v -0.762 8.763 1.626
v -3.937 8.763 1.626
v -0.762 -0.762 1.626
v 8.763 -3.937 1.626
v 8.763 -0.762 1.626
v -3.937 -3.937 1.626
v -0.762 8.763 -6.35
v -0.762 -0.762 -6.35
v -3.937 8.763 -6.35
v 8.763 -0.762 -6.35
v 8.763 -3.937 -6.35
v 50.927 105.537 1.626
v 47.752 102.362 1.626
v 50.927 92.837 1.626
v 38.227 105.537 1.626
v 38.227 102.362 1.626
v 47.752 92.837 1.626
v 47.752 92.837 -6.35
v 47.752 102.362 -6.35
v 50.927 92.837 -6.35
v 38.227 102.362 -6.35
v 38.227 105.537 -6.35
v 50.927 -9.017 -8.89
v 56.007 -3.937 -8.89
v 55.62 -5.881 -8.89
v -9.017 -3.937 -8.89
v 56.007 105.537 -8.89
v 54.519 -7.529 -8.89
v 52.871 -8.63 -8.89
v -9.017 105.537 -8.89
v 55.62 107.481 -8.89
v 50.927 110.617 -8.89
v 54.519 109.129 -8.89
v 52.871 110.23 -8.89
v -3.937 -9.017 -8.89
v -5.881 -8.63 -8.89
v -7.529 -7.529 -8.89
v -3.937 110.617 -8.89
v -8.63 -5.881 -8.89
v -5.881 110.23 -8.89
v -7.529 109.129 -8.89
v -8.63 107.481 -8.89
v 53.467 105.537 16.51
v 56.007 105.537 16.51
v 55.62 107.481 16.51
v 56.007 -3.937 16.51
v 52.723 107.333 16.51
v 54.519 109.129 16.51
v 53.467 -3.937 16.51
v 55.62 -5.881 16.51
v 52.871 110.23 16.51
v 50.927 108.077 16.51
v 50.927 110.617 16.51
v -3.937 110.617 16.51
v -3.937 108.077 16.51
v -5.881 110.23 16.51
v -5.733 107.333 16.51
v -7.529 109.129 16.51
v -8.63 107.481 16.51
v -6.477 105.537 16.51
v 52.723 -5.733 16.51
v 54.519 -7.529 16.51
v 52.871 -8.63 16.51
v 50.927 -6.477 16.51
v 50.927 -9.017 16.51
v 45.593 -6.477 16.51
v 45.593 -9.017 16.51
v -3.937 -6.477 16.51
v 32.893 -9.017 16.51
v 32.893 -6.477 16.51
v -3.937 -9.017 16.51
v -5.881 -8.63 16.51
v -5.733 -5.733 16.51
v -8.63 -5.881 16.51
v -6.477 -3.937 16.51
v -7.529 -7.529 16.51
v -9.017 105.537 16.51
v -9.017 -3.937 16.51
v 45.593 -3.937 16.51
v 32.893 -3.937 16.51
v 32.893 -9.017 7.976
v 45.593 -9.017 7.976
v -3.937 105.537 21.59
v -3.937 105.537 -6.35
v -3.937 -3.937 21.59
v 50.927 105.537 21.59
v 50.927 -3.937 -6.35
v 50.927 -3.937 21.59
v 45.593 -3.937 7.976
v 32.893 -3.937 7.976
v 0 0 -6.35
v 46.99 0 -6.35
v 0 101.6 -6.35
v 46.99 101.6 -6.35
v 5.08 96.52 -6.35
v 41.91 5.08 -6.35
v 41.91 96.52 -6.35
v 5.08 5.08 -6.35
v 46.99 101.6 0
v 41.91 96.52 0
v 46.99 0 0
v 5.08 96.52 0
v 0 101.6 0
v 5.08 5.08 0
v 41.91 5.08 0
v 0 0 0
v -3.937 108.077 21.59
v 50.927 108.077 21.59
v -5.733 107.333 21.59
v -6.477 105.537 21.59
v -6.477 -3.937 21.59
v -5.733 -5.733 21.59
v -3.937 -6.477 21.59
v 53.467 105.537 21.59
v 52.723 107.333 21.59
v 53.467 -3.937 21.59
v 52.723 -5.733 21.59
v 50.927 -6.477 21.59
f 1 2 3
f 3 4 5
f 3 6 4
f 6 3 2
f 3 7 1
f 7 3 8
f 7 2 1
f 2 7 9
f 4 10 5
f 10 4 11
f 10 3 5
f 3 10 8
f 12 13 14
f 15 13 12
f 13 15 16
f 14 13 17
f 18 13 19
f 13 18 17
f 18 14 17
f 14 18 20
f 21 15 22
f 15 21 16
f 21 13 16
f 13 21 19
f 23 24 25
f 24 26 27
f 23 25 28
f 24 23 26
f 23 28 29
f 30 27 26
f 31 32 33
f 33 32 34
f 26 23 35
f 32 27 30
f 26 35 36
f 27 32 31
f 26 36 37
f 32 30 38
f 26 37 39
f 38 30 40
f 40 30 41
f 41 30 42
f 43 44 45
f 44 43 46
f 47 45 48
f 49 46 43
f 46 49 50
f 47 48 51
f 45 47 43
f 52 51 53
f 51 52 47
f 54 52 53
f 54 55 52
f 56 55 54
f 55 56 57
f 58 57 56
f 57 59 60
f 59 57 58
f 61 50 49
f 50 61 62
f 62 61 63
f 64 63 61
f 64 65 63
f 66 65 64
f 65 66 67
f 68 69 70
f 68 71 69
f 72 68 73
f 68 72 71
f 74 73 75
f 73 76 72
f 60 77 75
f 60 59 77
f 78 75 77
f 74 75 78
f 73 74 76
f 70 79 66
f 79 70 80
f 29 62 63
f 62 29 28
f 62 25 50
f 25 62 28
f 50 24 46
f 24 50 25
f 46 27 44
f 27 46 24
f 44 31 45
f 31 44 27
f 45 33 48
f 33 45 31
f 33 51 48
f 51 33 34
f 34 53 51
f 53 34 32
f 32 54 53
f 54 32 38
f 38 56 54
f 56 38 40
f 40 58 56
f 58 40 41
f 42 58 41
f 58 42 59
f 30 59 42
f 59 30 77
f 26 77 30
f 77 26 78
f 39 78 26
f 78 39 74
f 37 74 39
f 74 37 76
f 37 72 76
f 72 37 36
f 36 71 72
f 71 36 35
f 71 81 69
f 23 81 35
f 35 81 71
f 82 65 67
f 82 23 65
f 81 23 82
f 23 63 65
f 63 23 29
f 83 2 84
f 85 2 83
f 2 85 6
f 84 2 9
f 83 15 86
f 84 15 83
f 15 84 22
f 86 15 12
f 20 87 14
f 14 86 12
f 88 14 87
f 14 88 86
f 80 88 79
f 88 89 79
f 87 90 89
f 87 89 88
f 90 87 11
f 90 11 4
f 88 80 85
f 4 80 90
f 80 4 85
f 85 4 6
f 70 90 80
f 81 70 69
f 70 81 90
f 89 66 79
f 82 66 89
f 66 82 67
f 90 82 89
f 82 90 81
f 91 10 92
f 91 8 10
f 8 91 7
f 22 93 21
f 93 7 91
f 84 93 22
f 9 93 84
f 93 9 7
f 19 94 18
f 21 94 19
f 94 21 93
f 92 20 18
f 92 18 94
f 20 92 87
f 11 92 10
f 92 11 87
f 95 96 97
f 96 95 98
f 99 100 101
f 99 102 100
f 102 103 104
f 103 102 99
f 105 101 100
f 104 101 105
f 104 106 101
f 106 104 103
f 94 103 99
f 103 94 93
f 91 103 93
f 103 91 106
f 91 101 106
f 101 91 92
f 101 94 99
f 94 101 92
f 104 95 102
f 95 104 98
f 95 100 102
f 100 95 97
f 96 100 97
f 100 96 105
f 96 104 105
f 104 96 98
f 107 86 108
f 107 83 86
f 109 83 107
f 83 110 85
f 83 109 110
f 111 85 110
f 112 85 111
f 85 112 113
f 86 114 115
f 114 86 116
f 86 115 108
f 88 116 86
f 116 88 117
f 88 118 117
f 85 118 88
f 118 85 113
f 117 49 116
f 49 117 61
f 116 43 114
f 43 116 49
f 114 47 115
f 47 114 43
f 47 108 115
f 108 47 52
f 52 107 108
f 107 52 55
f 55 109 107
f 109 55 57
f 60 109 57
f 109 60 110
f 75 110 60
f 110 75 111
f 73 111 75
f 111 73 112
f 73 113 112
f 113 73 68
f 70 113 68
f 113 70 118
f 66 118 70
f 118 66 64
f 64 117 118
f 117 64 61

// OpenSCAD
// The corner of the PCB is the reference point for the design at (0, 0, 0)

function in_to_mm(in) = (in * 25.4);

board_length = in_to_mm(4.00);
board_width = in_to_mm(1.85);
board_thickness = in_to_mm(0.064);
common_clearance = in_to_mm(0.030);
board_guide_length = in_to_mm(0.50);
board_guide_width = in_to_mm(0.1250);
board_guide_width_with_clearance = board_guide_width + common_clearance;
enclosure_wall_thickness = in_to_mm(0.100);
sides_height = in_to_mm(1);
notch_height = in_to_mm(0.20);
board_bed_height = in_to_mm(0.25);


module draw_connector() {
    // This is used to draw the connector on the board AND to extrude the cutout for it in the side of the enclosure
    translate([-board_guide_width_with_clearance, -board_guide_width_with_clearance, 0]) {
        translate([in_to_mm(1.45), -10, board_thickness + in_to_mm(0.25)]) {
                connector_width = in_to_mm(0.5);
                connector_height = in_to_mm(0.375);
                cube(size = [connector_width, 20, connector_height]);
        }
    }
}

module draw_board() {
    color("purple") {
        cube([board_width, board_length, board_thickness]);
        draw_connector();
    }
}
//draw_board();

// The platform that that board sits on **************************************************************


module draw_board_bed() {
    board_bed_width = in_to_mm(0.2);
    
    translate([0, 0, -board_bed_height]) {
        linear_extrude(board_bed_height) {
            difference() {
                square([board_width, board_length]);
                translate([board_bed_width, board_bed_width, 0]) {
                    square([board_width - board_bed_width * 2, board_length - board_bed_width * 2]);
                }
            }
        }
    }
}
draw_board_bed();

// The board guides that hold the corners of the board ******************************************
module guide() {
    translate([-board_guide_width_with_clearance, -board_guide_width_with_clearance, -board_bed_height]) {
        cube([board_guide_width, board_guide_length, board_thickness + board_bed_height]);
        cube([board_guide_length, board_guide_width, board_thickness + board_bed_height]);
    }
}

module draw_guides() {
guide();
    translate([board_width, board_length, 0]) {
        rotate([0, 0, 180]) {
            guide();
        }
    }
}
draw_guides();

// Outer Shell Bottom **************************************************************************
module draw_outer_shell_bottom() {
    translate([-board_guide_width_with_clearance, -board_guide_width_with_clearance, - (board_bed_height + enclosure_wall_thickness)]) {
        cube([board_width + (board_guide_width_with_clearance * 2), board_length + (board_guide_width_with_clearance * 2), enclosure_wall_thickness]);
    }
}
draw_outer_shell_bottom();

// Outer Shell Sides **************************************************************************

module outer_shell_2d() {
    difference() {
        offset(r = in_to_mm(.20)) {
            square([board_width + (board_guide_width_with_clearance * 2), board_length + (board_guide_width_with_clearance * 2)]);
        }
        square([board_width + (board_guide_width_with_clearance * 2), board_length + (board_guide_width_with_clearance * 2)]);
    }
}

module draw_outer_shell_sides() {
    difference() {
        translate([-board_guide_width_with_clearance, -board_guide_width_with_clearance, - (board_bed_height + enclosure_wall_thickness)]) {
            linear_extrude(sides_height) {
                outer_shell_2d();
            }
        }
        draw_connector();
    }
}
draw_outer_shell_sides();

// Lid notch **************************************************************************
starting_y = sides_height - board_bed_height - enclosure_wall_thickness;
translate([-board_guide_width_with_clearance, -board_guide_width_with_clearance, starting_y]) {
    linear_extrude(notch_height) {
        difference() {
            offset(r = in_to_mm(0.1)) {
                square([board_width + (board_guide_width_with_clearance * 2), board_length + (board_guide_width_with_clearance * 2)]);
            }
            square([board_width + (board_guide_width_with_clearance * 2), board_length + (board_guide_width_with_clearance * 2)]);
        }
    }
}
